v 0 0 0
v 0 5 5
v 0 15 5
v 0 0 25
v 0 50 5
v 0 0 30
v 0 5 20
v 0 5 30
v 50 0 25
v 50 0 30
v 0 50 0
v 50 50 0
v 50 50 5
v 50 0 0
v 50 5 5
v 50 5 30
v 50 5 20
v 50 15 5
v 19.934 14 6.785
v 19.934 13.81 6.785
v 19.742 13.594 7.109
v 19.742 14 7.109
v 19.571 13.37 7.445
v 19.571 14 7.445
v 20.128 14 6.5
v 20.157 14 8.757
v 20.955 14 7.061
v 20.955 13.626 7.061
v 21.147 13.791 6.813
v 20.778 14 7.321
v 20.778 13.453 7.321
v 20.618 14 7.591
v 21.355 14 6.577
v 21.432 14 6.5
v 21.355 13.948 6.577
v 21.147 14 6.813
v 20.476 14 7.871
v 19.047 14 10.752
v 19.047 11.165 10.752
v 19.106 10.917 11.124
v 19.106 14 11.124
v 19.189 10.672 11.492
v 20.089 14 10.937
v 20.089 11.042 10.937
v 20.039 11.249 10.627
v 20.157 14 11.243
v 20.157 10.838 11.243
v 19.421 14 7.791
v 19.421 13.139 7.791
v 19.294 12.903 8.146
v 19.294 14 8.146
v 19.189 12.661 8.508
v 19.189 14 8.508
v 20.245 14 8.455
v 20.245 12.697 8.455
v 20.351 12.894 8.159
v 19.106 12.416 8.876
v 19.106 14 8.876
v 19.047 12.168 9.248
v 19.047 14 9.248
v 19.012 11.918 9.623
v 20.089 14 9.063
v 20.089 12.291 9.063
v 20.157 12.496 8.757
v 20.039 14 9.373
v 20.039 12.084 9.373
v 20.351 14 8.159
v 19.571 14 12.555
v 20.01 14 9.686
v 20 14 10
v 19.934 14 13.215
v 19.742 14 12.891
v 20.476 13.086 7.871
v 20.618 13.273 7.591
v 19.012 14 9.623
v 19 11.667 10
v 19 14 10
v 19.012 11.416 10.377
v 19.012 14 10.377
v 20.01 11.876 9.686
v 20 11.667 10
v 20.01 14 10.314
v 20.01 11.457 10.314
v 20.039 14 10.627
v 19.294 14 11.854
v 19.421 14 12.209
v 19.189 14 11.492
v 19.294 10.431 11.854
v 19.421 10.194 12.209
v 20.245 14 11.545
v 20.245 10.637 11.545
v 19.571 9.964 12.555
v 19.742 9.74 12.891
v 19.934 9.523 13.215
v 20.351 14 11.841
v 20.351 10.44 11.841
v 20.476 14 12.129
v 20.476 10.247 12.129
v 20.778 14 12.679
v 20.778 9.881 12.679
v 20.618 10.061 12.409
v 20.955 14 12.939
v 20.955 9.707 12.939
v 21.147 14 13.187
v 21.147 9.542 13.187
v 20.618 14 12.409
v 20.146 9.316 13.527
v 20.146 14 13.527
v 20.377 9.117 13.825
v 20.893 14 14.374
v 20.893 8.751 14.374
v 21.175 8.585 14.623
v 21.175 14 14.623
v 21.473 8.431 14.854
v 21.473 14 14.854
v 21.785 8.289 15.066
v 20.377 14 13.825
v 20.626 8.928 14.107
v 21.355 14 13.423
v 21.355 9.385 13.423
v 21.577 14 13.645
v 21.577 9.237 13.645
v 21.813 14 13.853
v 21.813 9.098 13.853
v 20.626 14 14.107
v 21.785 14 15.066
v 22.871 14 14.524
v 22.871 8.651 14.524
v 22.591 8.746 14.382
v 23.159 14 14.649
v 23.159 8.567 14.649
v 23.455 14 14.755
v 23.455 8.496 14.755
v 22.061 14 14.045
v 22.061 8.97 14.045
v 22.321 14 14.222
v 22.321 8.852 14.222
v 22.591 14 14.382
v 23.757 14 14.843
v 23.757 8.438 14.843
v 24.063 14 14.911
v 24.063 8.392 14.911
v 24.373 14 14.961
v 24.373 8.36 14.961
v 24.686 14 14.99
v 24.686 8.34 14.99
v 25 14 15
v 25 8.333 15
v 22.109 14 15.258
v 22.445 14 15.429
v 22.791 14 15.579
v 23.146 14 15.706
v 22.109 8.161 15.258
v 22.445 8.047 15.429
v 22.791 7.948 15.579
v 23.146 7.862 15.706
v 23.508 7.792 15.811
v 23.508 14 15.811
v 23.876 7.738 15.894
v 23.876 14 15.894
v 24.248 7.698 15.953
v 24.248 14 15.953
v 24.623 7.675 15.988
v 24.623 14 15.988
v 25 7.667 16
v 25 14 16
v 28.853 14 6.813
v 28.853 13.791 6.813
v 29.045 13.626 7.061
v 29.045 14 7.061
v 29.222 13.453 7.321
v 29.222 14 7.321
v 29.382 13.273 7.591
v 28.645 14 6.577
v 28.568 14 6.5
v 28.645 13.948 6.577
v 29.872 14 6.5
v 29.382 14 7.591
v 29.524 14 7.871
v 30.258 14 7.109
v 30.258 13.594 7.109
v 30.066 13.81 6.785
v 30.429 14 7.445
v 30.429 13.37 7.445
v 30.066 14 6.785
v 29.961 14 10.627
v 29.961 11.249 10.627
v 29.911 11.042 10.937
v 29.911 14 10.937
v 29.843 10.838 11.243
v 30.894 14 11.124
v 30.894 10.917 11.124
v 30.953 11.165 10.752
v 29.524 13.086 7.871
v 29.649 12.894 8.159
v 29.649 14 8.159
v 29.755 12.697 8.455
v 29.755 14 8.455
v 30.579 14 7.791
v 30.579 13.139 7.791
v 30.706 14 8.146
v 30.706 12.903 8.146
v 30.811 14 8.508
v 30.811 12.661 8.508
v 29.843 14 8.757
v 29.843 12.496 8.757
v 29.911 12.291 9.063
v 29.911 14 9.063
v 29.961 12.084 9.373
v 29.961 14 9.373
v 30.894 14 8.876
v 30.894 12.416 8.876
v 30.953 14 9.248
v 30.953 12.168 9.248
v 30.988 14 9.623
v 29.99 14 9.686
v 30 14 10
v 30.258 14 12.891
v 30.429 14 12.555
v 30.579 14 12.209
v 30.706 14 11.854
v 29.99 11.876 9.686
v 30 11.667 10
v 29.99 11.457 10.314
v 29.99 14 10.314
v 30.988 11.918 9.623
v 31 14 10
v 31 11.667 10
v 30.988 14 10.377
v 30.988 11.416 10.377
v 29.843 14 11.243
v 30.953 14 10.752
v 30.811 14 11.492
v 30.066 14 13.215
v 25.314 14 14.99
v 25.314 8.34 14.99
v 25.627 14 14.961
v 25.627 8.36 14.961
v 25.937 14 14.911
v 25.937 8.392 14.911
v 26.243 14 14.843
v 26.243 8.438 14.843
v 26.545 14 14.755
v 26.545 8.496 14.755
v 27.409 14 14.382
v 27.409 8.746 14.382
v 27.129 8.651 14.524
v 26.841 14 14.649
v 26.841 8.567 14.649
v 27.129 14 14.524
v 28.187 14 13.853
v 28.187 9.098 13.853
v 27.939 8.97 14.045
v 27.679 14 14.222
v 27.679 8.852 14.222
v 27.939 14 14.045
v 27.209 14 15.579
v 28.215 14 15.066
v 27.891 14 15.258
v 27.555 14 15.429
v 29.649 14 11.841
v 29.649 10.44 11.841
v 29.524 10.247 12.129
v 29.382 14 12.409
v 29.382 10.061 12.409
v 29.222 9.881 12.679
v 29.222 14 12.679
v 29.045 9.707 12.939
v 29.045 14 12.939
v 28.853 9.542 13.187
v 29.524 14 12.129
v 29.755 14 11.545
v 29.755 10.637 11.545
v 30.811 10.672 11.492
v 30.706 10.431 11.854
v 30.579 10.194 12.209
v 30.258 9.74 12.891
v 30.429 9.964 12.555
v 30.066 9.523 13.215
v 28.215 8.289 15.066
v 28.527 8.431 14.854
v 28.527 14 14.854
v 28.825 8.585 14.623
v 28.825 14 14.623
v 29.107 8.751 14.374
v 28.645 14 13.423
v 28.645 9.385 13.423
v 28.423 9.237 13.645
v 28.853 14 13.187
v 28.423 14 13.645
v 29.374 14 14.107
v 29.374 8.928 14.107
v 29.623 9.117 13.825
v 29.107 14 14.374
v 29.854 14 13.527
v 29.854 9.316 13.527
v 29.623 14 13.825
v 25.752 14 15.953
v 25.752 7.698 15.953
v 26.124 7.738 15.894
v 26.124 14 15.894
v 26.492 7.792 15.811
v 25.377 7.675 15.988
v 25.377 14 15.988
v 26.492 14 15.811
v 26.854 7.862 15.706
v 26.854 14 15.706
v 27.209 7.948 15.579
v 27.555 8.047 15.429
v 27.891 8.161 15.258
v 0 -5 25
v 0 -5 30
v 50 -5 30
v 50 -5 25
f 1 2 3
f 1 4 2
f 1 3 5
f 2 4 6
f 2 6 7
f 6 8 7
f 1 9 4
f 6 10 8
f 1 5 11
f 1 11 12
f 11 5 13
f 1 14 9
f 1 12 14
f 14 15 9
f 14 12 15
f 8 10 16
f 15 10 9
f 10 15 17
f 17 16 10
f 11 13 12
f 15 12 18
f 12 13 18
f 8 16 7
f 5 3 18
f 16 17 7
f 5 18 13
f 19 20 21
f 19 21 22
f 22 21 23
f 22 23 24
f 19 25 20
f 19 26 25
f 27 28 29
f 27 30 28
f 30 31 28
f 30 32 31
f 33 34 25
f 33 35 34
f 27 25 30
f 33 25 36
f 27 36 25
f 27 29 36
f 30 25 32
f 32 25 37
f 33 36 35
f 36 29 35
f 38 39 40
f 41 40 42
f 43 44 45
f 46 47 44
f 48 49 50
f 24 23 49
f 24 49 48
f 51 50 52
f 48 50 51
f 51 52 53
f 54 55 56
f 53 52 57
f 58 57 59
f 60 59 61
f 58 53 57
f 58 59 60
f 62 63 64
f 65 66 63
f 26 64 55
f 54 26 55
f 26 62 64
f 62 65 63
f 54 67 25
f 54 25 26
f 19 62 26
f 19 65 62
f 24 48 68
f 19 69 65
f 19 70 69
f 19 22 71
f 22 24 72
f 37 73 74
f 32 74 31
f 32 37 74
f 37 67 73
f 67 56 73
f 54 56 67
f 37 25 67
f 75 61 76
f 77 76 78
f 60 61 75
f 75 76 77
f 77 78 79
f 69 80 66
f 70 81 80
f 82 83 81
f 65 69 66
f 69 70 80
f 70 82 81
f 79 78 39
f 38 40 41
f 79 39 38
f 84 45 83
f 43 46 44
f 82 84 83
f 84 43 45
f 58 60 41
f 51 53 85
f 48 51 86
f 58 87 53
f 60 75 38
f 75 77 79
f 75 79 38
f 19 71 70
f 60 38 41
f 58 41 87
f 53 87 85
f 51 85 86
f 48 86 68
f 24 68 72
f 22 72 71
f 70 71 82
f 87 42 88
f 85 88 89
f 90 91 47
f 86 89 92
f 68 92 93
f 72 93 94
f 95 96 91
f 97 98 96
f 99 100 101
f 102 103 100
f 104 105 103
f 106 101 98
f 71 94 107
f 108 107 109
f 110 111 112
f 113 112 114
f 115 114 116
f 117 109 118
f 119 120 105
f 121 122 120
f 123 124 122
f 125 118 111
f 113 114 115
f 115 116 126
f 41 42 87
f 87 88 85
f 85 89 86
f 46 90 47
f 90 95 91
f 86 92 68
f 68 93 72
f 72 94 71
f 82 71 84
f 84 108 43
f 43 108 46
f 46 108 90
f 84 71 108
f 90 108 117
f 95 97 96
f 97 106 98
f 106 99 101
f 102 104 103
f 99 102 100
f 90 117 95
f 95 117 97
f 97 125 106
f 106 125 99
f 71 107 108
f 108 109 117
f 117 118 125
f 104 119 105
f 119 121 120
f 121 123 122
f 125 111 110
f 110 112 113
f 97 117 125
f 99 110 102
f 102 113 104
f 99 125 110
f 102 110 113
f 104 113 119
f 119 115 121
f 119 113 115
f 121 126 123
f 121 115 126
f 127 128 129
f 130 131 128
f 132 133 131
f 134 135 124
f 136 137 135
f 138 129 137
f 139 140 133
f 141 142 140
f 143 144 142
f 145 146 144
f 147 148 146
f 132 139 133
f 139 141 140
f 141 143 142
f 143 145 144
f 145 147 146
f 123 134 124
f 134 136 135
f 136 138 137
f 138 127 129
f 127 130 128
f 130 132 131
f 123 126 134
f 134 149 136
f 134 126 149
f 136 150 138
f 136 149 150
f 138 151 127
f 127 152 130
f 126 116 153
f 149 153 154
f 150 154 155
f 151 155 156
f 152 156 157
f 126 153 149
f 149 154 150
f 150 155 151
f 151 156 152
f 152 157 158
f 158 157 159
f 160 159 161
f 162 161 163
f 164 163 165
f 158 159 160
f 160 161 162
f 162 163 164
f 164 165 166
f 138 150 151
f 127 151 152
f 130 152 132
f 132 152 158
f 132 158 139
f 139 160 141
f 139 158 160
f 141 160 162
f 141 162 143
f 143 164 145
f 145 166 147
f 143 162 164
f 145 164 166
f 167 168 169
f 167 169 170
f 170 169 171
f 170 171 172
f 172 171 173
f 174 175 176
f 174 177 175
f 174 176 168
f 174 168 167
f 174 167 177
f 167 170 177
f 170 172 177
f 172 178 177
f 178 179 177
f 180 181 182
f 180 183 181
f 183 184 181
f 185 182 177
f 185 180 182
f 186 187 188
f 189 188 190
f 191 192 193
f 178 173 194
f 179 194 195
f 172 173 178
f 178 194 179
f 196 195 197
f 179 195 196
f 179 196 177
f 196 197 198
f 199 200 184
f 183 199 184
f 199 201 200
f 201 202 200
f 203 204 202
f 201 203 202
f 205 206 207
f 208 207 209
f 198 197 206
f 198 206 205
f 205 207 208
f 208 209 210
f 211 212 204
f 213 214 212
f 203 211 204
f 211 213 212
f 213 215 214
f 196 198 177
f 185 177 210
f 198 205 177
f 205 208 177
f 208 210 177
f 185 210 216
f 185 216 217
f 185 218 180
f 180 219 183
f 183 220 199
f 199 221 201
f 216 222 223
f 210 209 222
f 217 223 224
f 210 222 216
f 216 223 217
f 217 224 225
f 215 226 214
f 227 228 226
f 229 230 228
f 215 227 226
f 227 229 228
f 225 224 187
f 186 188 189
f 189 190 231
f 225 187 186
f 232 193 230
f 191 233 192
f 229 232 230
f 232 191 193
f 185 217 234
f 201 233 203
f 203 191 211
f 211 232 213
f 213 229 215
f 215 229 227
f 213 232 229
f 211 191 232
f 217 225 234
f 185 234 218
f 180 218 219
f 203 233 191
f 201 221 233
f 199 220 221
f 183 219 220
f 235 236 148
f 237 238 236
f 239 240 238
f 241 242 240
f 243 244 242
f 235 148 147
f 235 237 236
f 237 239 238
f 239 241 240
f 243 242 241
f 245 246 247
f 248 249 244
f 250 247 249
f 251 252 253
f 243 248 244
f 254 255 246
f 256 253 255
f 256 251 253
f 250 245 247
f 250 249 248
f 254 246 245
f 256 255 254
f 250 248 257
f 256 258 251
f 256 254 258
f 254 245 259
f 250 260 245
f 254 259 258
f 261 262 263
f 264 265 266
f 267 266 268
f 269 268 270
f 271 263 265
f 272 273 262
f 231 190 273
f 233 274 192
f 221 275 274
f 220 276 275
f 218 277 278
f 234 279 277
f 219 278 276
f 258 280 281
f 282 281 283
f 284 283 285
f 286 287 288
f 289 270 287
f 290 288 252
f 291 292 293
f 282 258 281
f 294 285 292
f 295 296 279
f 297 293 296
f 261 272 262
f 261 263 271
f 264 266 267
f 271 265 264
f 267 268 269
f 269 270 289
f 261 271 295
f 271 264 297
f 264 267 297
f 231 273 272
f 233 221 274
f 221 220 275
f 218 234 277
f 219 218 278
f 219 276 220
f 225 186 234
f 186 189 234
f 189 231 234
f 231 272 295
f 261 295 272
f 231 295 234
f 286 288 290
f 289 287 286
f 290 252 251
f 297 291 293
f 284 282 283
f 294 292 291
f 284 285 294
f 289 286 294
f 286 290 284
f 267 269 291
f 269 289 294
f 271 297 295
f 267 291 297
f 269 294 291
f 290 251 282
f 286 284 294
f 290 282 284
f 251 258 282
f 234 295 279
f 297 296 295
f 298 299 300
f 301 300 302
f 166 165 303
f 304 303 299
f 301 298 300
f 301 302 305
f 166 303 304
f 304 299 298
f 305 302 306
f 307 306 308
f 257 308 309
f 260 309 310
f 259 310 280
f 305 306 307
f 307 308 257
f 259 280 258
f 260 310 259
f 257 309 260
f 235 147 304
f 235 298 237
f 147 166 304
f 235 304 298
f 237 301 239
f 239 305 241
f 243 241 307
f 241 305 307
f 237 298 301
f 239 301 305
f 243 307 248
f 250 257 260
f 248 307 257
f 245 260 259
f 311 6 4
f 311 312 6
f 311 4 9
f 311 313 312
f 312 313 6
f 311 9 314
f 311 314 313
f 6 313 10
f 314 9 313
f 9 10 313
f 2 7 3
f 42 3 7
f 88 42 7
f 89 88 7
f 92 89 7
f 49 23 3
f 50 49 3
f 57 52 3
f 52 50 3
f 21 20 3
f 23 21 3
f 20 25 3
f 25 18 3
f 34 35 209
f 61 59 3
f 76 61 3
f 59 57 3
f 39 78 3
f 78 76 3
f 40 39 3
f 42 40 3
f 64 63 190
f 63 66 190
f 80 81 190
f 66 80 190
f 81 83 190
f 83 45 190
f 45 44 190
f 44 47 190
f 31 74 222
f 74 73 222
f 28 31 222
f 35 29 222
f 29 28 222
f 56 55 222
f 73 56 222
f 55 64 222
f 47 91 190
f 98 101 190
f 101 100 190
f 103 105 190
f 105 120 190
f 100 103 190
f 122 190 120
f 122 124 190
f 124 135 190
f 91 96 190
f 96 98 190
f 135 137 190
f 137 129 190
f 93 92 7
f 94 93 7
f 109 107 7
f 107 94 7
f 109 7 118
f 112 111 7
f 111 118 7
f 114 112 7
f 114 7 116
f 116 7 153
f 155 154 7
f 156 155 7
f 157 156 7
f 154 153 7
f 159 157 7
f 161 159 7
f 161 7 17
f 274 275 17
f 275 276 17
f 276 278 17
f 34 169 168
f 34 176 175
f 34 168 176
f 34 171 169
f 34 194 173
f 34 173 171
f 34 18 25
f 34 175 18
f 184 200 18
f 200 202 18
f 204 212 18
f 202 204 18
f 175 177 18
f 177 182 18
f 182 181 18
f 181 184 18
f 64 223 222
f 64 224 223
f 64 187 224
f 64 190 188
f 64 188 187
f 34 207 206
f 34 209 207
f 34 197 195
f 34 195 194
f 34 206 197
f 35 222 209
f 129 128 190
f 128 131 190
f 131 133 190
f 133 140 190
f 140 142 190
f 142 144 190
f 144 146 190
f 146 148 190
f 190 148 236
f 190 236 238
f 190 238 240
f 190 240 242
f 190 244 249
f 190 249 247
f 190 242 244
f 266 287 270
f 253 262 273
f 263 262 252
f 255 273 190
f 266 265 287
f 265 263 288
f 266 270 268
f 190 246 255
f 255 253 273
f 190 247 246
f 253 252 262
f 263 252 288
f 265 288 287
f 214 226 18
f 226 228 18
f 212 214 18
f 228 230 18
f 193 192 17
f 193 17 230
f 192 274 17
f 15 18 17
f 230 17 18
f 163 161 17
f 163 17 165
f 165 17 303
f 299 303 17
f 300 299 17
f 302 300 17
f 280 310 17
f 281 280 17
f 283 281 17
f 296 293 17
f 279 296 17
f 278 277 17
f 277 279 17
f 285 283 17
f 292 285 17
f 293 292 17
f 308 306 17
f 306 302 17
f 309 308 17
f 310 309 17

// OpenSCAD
$fn = 100;

// L bracket
difference() {
  cube(size=[50, 50, 30], center=false);
  translate([-1, 5, 5])
    cube(size=[52, 50, 50], center=false);
}

// back support
translate([0, -5, 25]) {
  cube(size=[50, 5, 5], center=false);
}

module prism(l, w, h) {
  polyhedron(
    // pt      0        1        2        3        4        5
    points=[[0, 0, 0], [0, w, h], [l, w, h], [l, 0, 0], [0, w, 0], [l, w, 0]],
    // top sloping face (A)
    faces=[
      [0, 1, 2, 3],
      // vertical rectangular face (B)
      [2, 1, 4, 5],
      // bottom face (C)
      [0, 3, 5, 4],
      // rear triangular face (D)
      [0, 4, 1],
      // front triangular face (E)
      [3, 2, 5],
    ]
  );
}

// buttress
translate([50, 15, 5]) {
  rotate([0, 0, 180])
    color("red")
      prism(50, 10, 15);
}

// screw guide 
translate([25, 0, 10]) {
  rotate([90, 0, 0]) {
    color("blue")
      translate([0, 0, -14])
        difference() {
          cylinder(h=13, d=12, center=false);
          translate([0, 0, -1.5])
            cylinder(h=13, d=10, center=false);
        }
  }
}
